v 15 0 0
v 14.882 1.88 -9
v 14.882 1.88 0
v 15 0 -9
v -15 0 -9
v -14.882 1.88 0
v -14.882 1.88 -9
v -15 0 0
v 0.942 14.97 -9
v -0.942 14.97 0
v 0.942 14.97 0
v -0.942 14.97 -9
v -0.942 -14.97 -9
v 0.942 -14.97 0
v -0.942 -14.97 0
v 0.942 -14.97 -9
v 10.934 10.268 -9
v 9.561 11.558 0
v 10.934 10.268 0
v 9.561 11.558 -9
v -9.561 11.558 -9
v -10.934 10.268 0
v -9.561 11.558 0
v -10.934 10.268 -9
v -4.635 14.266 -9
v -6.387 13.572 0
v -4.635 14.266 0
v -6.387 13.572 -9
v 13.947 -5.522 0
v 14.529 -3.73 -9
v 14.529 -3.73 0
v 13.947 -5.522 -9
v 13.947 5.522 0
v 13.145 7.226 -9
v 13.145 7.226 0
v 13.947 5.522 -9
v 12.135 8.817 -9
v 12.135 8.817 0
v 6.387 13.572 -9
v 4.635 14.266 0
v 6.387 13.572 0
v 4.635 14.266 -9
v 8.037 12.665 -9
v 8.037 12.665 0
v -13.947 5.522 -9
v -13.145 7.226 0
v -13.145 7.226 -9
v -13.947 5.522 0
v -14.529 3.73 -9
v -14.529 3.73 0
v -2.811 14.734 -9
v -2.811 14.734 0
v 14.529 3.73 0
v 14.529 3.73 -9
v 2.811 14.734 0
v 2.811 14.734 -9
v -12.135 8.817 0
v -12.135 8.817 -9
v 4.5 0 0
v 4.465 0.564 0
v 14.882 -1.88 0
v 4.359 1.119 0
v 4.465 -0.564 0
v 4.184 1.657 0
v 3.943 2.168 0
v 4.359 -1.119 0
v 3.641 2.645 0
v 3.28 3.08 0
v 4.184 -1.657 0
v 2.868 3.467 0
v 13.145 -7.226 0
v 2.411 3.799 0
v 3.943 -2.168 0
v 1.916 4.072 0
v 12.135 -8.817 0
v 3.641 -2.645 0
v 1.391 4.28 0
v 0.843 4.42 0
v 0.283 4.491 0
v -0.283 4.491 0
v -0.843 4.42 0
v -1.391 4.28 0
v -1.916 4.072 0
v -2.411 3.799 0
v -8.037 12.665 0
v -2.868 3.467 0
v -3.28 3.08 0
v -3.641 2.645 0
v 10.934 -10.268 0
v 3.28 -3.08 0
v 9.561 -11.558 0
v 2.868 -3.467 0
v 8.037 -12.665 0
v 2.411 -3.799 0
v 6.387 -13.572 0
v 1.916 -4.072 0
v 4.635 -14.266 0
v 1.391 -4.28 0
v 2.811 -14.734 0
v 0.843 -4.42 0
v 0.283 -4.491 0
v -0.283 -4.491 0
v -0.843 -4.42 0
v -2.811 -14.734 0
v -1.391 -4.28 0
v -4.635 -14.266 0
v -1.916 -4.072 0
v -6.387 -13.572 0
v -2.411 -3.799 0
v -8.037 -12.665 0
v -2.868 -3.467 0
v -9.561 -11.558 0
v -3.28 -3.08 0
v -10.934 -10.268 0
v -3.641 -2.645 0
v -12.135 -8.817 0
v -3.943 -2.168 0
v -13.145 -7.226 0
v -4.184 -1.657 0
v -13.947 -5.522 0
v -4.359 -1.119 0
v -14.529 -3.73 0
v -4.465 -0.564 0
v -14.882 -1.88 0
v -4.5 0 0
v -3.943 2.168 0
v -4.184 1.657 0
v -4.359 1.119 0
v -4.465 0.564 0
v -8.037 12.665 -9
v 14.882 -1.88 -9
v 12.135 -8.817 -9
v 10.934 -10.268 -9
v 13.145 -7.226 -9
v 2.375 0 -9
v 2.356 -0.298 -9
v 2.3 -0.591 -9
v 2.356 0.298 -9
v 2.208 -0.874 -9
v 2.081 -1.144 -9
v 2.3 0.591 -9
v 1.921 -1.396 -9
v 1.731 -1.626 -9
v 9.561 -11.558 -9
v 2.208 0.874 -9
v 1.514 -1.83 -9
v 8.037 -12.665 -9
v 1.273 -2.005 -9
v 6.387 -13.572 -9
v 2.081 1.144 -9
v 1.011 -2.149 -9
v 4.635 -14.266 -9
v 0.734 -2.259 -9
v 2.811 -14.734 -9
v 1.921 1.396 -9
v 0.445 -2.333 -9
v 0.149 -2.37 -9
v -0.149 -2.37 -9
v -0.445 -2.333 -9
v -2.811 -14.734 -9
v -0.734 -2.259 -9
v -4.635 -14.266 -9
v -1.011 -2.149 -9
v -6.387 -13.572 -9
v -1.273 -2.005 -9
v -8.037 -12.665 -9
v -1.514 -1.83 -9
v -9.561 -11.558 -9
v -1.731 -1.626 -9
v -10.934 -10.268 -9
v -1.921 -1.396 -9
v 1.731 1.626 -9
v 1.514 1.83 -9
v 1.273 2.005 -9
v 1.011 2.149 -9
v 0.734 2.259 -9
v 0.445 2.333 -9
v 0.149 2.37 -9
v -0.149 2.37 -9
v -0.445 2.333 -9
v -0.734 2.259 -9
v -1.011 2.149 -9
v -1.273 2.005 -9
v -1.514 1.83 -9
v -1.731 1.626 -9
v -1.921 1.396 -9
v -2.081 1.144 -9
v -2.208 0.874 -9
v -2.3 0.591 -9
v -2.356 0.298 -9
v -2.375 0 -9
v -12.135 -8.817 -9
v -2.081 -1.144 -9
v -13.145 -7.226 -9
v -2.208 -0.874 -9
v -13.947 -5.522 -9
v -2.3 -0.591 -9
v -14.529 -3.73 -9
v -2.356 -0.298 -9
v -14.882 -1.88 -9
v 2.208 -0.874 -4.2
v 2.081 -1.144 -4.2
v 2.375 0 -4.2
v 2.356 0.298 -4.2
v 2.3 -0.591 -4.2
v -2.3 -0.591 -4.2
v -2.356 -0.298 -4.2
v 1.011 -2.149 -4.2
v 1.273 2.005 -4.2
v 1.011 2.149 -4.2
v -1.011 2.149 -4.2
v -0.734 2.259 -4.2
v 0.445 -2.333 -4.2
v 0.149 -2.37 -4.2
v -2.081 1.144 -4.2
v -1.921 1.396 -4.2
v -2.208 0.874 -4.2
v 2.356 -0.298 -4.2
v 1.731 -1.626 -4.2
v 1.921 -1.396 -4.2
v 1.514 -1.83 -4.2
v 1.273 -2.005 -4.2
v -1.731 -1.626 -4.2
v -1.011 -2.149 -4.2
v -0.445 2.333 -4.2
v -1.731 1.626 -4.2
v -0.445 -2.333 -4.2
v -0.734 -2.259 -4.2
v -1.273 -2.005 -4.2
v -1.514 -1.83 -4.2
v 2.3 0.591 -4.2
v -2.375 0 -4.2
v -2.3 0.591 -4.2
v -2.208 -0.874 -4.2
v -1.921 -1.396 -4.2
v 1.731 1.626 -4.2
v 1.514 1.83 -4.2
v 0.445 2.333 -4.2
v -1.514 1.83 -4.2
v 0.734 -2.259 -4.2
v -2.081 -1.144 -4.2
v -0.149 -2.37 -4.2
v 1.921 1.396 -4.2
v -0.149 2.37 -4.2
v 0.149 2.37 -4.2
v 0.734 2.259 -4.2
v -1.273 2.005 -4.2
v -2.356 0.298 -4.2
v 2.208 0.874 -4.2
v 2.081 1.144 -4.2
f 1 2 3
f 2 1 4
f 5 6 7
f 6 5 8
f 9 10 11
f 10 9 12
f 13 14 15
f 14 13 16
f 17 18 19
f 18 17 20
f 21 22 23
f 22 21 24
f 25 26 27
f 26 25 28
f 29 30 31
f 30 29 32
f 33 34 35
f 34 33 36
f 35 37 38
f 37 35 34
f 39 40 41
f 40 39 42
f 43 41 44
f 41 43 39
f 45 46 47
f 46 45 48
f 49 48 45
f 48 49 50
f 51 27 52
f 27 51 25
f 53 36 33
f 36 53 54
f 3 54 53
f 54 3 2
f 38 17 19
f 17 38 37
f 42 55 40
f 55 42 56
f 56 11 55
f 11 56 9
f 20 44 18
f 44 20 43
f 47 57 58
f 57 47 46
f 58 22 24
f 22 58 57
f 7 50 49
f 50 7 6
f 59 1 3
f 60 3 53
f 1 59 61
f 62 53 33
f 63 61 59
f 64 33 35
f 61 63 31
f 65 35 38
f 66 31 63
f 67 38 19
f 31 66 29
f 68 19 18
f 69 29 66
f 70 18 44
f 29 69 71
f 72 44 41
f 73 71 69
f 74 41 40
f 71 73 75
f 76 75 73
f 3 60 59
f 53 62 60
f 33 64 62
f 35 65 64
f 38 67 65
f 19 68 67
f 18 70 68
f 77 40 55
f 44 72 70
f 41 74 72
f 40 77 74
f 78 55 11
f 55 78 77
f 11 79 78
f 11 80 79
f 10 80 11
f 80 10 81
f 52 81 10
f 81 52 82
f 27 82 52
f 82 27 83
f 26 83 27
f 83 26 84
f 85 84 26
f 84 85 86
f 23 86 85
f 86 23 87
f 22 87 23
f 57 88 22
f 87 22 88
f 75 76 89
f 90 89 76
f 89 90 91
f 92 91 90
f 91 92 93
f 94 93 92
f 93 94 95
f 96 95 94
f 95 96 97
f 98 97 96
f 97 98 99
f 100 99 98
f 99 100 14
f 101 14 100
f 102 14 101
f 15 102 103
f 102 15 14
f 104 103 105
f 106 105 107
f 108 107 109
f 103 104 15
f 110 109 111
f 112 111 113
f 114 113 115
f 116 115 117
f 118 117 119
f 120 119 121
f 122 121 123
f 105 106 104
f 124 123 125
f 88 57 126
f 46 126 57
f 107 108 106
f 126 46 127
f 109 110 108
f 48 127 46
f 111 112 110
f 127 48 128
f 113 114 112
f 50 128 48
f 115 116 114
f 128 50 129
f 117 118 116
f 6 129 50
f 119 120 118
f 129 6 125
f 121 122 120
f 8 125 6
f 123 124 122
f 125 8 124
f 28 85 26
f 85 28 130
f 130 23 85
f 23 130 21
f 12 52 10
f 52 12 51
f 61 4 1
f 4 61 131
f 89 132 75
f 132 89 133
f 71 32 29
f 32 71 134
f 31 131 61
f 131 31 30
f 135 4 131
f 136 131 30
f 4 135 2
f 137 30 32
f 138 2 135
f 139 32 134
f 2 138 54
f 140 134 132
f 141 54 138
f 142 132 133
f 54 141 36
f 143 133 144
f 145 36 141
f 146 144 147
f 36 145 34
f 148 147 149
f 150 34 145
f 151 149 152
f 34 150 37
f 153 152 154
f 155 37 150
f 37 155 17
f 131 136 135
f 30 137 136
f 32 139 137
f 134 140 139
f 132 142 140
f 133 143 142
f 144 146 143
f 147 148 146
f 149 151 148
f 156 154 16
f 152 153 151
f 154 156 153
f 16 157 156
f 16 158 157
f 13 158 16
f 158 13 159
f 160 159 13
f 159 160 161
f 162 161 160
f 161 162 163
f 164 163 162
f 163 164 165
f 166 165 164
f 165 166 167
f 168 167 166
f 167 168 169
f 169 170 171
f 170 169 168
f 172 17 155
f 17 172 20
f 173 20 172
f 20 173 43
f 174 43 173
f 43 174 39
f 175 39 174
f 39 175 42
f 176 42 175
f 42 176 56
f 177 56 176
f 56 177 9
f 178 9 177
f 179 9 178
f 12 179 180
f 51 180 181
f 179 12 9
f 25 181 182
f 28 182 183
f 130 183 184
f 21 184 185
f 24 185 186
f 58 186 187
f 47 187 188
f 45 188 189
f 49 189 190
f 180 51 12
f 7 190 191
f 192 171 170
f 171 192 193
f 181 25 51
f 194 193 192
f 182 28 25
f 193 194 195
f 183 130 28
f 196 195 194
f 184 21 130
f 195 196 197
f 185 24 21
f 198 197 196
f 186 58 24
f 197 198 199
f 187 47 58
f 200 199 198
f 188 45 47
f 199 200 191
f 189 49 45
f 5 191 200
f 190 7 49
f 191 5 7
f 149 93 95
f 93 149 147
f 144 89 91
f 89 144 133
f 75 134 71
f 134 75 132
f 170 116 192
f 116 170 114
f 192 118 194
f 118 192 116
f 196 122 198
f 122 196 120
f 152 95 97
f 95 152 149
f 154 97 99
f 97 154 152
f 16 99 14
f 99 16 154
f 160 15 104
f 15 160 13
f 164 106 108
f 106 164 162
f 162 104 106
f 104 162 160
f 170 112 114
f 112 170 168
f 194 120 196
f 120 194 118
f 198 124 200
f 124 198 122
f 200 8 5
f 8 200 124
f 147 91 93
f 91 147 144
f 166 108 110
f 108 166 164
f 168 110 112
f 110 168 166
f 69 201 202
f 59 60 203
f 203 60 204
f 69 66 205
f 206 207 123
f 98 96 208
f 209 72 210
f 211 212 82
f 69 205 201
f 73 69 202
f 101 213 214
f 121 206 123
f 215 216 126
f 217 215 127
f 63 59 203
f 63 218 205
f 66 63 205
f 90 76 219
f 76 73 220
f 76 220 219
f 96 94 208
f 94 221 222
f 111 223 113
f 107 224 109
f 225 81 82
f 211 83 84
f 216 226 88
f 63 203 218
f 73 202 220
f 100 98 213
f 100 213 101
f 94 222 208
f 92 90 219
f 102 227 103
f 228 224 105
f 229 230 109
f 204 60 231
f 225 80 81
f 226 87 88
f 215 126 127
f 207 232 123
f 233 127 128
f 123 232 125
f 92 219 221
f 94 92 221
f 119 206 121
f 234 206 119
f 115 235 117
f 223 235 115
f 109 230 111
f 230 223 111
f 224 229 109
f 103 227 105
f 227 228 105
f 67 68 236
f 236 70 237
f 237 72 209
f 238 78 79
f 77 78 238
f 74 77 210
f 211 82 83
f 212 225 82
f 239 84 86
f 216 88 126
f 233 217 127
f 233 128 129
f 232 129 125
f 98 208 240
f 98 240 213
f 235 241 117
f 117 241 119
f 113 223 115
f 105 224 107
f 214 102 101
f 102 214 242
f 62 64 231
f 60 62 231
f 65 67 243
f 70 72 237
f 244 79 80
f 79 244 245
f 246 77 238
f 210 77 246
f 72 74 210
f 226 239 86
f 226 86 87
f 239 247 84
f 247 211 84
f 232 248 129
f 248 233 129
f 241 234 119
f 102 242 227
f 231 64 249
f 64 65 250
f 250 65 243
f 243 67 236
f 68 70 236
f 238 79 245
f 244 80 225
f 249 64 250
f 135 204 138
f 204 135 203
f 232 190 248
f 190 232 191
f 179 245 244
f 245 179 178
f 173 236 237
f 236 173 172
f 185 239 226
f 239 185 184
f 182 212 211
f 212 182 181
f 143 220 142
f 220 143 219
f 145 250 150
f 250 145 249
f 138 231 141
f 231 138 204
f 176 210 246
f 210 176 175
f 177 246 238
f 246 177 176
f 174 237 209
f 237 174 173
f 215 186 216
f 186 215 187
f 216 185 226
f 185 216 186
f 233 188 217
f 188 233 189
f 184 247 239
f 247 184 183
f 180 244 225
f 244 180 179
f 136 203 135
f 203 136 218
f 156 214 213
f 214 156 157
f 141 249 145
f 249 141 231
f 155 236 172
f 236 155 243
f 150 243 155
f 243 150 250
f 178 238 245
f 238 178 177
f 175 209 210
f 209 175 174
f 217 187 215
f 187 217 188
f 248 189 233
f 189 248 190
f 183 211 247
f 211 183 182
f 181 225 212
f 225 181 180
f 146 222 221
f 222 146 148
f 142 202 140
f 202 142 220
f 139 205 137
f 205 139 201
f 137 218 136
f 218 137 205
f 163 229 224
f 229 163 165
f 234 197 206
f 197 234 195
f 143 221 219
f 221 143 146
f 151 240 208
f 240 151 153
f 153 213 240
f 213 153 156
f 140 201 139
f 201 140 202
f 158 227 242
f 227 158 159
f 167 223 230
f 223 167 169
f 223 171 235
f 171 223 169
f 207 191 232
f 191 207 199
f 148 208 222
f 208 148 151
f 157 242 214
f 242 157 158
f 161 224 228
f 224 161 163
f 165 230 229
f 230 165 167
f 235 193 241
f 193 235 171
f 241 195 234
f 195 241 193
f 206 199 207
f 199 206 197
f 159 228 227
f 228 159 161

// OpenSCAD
$fn = 50;


difference() {
	union() {
		translate(v = [0, 0, -9.0000000000]) {
			cylinder(h = 9, r = 15.0000000000);
		}
		translate(v = [0, 0, -9.0000000000]) {
			cylinder(h = 9, r = 2.8750000000);
		}
	}
	union() {
		translate(v = [0, 0, 0]) {
			rotate(a = [0, 0, 0]) {
				difference() {
					union() {
						translate(v = [0, 0, -9.0000000000]) {
							cylinder(h = 9, r = 2.2500000000);
						}
						translate(v = [0, 0, -4.2000000000]) {
							cylinder(h = 4.2000000000, r1 = 2.3750000000, r2 = 4.5000000000);
						}
						translate(v = [0, 0, -9.0000000000]) {
							cylinder(h = 9, r = 2.3750000000);
						}
						translate(v = [0, 0, -9.0000000000]) {
							cylinder(h = 9, r = 2.2500000000);
						}
					}
					union();
				}
			}
		}
	}
}
